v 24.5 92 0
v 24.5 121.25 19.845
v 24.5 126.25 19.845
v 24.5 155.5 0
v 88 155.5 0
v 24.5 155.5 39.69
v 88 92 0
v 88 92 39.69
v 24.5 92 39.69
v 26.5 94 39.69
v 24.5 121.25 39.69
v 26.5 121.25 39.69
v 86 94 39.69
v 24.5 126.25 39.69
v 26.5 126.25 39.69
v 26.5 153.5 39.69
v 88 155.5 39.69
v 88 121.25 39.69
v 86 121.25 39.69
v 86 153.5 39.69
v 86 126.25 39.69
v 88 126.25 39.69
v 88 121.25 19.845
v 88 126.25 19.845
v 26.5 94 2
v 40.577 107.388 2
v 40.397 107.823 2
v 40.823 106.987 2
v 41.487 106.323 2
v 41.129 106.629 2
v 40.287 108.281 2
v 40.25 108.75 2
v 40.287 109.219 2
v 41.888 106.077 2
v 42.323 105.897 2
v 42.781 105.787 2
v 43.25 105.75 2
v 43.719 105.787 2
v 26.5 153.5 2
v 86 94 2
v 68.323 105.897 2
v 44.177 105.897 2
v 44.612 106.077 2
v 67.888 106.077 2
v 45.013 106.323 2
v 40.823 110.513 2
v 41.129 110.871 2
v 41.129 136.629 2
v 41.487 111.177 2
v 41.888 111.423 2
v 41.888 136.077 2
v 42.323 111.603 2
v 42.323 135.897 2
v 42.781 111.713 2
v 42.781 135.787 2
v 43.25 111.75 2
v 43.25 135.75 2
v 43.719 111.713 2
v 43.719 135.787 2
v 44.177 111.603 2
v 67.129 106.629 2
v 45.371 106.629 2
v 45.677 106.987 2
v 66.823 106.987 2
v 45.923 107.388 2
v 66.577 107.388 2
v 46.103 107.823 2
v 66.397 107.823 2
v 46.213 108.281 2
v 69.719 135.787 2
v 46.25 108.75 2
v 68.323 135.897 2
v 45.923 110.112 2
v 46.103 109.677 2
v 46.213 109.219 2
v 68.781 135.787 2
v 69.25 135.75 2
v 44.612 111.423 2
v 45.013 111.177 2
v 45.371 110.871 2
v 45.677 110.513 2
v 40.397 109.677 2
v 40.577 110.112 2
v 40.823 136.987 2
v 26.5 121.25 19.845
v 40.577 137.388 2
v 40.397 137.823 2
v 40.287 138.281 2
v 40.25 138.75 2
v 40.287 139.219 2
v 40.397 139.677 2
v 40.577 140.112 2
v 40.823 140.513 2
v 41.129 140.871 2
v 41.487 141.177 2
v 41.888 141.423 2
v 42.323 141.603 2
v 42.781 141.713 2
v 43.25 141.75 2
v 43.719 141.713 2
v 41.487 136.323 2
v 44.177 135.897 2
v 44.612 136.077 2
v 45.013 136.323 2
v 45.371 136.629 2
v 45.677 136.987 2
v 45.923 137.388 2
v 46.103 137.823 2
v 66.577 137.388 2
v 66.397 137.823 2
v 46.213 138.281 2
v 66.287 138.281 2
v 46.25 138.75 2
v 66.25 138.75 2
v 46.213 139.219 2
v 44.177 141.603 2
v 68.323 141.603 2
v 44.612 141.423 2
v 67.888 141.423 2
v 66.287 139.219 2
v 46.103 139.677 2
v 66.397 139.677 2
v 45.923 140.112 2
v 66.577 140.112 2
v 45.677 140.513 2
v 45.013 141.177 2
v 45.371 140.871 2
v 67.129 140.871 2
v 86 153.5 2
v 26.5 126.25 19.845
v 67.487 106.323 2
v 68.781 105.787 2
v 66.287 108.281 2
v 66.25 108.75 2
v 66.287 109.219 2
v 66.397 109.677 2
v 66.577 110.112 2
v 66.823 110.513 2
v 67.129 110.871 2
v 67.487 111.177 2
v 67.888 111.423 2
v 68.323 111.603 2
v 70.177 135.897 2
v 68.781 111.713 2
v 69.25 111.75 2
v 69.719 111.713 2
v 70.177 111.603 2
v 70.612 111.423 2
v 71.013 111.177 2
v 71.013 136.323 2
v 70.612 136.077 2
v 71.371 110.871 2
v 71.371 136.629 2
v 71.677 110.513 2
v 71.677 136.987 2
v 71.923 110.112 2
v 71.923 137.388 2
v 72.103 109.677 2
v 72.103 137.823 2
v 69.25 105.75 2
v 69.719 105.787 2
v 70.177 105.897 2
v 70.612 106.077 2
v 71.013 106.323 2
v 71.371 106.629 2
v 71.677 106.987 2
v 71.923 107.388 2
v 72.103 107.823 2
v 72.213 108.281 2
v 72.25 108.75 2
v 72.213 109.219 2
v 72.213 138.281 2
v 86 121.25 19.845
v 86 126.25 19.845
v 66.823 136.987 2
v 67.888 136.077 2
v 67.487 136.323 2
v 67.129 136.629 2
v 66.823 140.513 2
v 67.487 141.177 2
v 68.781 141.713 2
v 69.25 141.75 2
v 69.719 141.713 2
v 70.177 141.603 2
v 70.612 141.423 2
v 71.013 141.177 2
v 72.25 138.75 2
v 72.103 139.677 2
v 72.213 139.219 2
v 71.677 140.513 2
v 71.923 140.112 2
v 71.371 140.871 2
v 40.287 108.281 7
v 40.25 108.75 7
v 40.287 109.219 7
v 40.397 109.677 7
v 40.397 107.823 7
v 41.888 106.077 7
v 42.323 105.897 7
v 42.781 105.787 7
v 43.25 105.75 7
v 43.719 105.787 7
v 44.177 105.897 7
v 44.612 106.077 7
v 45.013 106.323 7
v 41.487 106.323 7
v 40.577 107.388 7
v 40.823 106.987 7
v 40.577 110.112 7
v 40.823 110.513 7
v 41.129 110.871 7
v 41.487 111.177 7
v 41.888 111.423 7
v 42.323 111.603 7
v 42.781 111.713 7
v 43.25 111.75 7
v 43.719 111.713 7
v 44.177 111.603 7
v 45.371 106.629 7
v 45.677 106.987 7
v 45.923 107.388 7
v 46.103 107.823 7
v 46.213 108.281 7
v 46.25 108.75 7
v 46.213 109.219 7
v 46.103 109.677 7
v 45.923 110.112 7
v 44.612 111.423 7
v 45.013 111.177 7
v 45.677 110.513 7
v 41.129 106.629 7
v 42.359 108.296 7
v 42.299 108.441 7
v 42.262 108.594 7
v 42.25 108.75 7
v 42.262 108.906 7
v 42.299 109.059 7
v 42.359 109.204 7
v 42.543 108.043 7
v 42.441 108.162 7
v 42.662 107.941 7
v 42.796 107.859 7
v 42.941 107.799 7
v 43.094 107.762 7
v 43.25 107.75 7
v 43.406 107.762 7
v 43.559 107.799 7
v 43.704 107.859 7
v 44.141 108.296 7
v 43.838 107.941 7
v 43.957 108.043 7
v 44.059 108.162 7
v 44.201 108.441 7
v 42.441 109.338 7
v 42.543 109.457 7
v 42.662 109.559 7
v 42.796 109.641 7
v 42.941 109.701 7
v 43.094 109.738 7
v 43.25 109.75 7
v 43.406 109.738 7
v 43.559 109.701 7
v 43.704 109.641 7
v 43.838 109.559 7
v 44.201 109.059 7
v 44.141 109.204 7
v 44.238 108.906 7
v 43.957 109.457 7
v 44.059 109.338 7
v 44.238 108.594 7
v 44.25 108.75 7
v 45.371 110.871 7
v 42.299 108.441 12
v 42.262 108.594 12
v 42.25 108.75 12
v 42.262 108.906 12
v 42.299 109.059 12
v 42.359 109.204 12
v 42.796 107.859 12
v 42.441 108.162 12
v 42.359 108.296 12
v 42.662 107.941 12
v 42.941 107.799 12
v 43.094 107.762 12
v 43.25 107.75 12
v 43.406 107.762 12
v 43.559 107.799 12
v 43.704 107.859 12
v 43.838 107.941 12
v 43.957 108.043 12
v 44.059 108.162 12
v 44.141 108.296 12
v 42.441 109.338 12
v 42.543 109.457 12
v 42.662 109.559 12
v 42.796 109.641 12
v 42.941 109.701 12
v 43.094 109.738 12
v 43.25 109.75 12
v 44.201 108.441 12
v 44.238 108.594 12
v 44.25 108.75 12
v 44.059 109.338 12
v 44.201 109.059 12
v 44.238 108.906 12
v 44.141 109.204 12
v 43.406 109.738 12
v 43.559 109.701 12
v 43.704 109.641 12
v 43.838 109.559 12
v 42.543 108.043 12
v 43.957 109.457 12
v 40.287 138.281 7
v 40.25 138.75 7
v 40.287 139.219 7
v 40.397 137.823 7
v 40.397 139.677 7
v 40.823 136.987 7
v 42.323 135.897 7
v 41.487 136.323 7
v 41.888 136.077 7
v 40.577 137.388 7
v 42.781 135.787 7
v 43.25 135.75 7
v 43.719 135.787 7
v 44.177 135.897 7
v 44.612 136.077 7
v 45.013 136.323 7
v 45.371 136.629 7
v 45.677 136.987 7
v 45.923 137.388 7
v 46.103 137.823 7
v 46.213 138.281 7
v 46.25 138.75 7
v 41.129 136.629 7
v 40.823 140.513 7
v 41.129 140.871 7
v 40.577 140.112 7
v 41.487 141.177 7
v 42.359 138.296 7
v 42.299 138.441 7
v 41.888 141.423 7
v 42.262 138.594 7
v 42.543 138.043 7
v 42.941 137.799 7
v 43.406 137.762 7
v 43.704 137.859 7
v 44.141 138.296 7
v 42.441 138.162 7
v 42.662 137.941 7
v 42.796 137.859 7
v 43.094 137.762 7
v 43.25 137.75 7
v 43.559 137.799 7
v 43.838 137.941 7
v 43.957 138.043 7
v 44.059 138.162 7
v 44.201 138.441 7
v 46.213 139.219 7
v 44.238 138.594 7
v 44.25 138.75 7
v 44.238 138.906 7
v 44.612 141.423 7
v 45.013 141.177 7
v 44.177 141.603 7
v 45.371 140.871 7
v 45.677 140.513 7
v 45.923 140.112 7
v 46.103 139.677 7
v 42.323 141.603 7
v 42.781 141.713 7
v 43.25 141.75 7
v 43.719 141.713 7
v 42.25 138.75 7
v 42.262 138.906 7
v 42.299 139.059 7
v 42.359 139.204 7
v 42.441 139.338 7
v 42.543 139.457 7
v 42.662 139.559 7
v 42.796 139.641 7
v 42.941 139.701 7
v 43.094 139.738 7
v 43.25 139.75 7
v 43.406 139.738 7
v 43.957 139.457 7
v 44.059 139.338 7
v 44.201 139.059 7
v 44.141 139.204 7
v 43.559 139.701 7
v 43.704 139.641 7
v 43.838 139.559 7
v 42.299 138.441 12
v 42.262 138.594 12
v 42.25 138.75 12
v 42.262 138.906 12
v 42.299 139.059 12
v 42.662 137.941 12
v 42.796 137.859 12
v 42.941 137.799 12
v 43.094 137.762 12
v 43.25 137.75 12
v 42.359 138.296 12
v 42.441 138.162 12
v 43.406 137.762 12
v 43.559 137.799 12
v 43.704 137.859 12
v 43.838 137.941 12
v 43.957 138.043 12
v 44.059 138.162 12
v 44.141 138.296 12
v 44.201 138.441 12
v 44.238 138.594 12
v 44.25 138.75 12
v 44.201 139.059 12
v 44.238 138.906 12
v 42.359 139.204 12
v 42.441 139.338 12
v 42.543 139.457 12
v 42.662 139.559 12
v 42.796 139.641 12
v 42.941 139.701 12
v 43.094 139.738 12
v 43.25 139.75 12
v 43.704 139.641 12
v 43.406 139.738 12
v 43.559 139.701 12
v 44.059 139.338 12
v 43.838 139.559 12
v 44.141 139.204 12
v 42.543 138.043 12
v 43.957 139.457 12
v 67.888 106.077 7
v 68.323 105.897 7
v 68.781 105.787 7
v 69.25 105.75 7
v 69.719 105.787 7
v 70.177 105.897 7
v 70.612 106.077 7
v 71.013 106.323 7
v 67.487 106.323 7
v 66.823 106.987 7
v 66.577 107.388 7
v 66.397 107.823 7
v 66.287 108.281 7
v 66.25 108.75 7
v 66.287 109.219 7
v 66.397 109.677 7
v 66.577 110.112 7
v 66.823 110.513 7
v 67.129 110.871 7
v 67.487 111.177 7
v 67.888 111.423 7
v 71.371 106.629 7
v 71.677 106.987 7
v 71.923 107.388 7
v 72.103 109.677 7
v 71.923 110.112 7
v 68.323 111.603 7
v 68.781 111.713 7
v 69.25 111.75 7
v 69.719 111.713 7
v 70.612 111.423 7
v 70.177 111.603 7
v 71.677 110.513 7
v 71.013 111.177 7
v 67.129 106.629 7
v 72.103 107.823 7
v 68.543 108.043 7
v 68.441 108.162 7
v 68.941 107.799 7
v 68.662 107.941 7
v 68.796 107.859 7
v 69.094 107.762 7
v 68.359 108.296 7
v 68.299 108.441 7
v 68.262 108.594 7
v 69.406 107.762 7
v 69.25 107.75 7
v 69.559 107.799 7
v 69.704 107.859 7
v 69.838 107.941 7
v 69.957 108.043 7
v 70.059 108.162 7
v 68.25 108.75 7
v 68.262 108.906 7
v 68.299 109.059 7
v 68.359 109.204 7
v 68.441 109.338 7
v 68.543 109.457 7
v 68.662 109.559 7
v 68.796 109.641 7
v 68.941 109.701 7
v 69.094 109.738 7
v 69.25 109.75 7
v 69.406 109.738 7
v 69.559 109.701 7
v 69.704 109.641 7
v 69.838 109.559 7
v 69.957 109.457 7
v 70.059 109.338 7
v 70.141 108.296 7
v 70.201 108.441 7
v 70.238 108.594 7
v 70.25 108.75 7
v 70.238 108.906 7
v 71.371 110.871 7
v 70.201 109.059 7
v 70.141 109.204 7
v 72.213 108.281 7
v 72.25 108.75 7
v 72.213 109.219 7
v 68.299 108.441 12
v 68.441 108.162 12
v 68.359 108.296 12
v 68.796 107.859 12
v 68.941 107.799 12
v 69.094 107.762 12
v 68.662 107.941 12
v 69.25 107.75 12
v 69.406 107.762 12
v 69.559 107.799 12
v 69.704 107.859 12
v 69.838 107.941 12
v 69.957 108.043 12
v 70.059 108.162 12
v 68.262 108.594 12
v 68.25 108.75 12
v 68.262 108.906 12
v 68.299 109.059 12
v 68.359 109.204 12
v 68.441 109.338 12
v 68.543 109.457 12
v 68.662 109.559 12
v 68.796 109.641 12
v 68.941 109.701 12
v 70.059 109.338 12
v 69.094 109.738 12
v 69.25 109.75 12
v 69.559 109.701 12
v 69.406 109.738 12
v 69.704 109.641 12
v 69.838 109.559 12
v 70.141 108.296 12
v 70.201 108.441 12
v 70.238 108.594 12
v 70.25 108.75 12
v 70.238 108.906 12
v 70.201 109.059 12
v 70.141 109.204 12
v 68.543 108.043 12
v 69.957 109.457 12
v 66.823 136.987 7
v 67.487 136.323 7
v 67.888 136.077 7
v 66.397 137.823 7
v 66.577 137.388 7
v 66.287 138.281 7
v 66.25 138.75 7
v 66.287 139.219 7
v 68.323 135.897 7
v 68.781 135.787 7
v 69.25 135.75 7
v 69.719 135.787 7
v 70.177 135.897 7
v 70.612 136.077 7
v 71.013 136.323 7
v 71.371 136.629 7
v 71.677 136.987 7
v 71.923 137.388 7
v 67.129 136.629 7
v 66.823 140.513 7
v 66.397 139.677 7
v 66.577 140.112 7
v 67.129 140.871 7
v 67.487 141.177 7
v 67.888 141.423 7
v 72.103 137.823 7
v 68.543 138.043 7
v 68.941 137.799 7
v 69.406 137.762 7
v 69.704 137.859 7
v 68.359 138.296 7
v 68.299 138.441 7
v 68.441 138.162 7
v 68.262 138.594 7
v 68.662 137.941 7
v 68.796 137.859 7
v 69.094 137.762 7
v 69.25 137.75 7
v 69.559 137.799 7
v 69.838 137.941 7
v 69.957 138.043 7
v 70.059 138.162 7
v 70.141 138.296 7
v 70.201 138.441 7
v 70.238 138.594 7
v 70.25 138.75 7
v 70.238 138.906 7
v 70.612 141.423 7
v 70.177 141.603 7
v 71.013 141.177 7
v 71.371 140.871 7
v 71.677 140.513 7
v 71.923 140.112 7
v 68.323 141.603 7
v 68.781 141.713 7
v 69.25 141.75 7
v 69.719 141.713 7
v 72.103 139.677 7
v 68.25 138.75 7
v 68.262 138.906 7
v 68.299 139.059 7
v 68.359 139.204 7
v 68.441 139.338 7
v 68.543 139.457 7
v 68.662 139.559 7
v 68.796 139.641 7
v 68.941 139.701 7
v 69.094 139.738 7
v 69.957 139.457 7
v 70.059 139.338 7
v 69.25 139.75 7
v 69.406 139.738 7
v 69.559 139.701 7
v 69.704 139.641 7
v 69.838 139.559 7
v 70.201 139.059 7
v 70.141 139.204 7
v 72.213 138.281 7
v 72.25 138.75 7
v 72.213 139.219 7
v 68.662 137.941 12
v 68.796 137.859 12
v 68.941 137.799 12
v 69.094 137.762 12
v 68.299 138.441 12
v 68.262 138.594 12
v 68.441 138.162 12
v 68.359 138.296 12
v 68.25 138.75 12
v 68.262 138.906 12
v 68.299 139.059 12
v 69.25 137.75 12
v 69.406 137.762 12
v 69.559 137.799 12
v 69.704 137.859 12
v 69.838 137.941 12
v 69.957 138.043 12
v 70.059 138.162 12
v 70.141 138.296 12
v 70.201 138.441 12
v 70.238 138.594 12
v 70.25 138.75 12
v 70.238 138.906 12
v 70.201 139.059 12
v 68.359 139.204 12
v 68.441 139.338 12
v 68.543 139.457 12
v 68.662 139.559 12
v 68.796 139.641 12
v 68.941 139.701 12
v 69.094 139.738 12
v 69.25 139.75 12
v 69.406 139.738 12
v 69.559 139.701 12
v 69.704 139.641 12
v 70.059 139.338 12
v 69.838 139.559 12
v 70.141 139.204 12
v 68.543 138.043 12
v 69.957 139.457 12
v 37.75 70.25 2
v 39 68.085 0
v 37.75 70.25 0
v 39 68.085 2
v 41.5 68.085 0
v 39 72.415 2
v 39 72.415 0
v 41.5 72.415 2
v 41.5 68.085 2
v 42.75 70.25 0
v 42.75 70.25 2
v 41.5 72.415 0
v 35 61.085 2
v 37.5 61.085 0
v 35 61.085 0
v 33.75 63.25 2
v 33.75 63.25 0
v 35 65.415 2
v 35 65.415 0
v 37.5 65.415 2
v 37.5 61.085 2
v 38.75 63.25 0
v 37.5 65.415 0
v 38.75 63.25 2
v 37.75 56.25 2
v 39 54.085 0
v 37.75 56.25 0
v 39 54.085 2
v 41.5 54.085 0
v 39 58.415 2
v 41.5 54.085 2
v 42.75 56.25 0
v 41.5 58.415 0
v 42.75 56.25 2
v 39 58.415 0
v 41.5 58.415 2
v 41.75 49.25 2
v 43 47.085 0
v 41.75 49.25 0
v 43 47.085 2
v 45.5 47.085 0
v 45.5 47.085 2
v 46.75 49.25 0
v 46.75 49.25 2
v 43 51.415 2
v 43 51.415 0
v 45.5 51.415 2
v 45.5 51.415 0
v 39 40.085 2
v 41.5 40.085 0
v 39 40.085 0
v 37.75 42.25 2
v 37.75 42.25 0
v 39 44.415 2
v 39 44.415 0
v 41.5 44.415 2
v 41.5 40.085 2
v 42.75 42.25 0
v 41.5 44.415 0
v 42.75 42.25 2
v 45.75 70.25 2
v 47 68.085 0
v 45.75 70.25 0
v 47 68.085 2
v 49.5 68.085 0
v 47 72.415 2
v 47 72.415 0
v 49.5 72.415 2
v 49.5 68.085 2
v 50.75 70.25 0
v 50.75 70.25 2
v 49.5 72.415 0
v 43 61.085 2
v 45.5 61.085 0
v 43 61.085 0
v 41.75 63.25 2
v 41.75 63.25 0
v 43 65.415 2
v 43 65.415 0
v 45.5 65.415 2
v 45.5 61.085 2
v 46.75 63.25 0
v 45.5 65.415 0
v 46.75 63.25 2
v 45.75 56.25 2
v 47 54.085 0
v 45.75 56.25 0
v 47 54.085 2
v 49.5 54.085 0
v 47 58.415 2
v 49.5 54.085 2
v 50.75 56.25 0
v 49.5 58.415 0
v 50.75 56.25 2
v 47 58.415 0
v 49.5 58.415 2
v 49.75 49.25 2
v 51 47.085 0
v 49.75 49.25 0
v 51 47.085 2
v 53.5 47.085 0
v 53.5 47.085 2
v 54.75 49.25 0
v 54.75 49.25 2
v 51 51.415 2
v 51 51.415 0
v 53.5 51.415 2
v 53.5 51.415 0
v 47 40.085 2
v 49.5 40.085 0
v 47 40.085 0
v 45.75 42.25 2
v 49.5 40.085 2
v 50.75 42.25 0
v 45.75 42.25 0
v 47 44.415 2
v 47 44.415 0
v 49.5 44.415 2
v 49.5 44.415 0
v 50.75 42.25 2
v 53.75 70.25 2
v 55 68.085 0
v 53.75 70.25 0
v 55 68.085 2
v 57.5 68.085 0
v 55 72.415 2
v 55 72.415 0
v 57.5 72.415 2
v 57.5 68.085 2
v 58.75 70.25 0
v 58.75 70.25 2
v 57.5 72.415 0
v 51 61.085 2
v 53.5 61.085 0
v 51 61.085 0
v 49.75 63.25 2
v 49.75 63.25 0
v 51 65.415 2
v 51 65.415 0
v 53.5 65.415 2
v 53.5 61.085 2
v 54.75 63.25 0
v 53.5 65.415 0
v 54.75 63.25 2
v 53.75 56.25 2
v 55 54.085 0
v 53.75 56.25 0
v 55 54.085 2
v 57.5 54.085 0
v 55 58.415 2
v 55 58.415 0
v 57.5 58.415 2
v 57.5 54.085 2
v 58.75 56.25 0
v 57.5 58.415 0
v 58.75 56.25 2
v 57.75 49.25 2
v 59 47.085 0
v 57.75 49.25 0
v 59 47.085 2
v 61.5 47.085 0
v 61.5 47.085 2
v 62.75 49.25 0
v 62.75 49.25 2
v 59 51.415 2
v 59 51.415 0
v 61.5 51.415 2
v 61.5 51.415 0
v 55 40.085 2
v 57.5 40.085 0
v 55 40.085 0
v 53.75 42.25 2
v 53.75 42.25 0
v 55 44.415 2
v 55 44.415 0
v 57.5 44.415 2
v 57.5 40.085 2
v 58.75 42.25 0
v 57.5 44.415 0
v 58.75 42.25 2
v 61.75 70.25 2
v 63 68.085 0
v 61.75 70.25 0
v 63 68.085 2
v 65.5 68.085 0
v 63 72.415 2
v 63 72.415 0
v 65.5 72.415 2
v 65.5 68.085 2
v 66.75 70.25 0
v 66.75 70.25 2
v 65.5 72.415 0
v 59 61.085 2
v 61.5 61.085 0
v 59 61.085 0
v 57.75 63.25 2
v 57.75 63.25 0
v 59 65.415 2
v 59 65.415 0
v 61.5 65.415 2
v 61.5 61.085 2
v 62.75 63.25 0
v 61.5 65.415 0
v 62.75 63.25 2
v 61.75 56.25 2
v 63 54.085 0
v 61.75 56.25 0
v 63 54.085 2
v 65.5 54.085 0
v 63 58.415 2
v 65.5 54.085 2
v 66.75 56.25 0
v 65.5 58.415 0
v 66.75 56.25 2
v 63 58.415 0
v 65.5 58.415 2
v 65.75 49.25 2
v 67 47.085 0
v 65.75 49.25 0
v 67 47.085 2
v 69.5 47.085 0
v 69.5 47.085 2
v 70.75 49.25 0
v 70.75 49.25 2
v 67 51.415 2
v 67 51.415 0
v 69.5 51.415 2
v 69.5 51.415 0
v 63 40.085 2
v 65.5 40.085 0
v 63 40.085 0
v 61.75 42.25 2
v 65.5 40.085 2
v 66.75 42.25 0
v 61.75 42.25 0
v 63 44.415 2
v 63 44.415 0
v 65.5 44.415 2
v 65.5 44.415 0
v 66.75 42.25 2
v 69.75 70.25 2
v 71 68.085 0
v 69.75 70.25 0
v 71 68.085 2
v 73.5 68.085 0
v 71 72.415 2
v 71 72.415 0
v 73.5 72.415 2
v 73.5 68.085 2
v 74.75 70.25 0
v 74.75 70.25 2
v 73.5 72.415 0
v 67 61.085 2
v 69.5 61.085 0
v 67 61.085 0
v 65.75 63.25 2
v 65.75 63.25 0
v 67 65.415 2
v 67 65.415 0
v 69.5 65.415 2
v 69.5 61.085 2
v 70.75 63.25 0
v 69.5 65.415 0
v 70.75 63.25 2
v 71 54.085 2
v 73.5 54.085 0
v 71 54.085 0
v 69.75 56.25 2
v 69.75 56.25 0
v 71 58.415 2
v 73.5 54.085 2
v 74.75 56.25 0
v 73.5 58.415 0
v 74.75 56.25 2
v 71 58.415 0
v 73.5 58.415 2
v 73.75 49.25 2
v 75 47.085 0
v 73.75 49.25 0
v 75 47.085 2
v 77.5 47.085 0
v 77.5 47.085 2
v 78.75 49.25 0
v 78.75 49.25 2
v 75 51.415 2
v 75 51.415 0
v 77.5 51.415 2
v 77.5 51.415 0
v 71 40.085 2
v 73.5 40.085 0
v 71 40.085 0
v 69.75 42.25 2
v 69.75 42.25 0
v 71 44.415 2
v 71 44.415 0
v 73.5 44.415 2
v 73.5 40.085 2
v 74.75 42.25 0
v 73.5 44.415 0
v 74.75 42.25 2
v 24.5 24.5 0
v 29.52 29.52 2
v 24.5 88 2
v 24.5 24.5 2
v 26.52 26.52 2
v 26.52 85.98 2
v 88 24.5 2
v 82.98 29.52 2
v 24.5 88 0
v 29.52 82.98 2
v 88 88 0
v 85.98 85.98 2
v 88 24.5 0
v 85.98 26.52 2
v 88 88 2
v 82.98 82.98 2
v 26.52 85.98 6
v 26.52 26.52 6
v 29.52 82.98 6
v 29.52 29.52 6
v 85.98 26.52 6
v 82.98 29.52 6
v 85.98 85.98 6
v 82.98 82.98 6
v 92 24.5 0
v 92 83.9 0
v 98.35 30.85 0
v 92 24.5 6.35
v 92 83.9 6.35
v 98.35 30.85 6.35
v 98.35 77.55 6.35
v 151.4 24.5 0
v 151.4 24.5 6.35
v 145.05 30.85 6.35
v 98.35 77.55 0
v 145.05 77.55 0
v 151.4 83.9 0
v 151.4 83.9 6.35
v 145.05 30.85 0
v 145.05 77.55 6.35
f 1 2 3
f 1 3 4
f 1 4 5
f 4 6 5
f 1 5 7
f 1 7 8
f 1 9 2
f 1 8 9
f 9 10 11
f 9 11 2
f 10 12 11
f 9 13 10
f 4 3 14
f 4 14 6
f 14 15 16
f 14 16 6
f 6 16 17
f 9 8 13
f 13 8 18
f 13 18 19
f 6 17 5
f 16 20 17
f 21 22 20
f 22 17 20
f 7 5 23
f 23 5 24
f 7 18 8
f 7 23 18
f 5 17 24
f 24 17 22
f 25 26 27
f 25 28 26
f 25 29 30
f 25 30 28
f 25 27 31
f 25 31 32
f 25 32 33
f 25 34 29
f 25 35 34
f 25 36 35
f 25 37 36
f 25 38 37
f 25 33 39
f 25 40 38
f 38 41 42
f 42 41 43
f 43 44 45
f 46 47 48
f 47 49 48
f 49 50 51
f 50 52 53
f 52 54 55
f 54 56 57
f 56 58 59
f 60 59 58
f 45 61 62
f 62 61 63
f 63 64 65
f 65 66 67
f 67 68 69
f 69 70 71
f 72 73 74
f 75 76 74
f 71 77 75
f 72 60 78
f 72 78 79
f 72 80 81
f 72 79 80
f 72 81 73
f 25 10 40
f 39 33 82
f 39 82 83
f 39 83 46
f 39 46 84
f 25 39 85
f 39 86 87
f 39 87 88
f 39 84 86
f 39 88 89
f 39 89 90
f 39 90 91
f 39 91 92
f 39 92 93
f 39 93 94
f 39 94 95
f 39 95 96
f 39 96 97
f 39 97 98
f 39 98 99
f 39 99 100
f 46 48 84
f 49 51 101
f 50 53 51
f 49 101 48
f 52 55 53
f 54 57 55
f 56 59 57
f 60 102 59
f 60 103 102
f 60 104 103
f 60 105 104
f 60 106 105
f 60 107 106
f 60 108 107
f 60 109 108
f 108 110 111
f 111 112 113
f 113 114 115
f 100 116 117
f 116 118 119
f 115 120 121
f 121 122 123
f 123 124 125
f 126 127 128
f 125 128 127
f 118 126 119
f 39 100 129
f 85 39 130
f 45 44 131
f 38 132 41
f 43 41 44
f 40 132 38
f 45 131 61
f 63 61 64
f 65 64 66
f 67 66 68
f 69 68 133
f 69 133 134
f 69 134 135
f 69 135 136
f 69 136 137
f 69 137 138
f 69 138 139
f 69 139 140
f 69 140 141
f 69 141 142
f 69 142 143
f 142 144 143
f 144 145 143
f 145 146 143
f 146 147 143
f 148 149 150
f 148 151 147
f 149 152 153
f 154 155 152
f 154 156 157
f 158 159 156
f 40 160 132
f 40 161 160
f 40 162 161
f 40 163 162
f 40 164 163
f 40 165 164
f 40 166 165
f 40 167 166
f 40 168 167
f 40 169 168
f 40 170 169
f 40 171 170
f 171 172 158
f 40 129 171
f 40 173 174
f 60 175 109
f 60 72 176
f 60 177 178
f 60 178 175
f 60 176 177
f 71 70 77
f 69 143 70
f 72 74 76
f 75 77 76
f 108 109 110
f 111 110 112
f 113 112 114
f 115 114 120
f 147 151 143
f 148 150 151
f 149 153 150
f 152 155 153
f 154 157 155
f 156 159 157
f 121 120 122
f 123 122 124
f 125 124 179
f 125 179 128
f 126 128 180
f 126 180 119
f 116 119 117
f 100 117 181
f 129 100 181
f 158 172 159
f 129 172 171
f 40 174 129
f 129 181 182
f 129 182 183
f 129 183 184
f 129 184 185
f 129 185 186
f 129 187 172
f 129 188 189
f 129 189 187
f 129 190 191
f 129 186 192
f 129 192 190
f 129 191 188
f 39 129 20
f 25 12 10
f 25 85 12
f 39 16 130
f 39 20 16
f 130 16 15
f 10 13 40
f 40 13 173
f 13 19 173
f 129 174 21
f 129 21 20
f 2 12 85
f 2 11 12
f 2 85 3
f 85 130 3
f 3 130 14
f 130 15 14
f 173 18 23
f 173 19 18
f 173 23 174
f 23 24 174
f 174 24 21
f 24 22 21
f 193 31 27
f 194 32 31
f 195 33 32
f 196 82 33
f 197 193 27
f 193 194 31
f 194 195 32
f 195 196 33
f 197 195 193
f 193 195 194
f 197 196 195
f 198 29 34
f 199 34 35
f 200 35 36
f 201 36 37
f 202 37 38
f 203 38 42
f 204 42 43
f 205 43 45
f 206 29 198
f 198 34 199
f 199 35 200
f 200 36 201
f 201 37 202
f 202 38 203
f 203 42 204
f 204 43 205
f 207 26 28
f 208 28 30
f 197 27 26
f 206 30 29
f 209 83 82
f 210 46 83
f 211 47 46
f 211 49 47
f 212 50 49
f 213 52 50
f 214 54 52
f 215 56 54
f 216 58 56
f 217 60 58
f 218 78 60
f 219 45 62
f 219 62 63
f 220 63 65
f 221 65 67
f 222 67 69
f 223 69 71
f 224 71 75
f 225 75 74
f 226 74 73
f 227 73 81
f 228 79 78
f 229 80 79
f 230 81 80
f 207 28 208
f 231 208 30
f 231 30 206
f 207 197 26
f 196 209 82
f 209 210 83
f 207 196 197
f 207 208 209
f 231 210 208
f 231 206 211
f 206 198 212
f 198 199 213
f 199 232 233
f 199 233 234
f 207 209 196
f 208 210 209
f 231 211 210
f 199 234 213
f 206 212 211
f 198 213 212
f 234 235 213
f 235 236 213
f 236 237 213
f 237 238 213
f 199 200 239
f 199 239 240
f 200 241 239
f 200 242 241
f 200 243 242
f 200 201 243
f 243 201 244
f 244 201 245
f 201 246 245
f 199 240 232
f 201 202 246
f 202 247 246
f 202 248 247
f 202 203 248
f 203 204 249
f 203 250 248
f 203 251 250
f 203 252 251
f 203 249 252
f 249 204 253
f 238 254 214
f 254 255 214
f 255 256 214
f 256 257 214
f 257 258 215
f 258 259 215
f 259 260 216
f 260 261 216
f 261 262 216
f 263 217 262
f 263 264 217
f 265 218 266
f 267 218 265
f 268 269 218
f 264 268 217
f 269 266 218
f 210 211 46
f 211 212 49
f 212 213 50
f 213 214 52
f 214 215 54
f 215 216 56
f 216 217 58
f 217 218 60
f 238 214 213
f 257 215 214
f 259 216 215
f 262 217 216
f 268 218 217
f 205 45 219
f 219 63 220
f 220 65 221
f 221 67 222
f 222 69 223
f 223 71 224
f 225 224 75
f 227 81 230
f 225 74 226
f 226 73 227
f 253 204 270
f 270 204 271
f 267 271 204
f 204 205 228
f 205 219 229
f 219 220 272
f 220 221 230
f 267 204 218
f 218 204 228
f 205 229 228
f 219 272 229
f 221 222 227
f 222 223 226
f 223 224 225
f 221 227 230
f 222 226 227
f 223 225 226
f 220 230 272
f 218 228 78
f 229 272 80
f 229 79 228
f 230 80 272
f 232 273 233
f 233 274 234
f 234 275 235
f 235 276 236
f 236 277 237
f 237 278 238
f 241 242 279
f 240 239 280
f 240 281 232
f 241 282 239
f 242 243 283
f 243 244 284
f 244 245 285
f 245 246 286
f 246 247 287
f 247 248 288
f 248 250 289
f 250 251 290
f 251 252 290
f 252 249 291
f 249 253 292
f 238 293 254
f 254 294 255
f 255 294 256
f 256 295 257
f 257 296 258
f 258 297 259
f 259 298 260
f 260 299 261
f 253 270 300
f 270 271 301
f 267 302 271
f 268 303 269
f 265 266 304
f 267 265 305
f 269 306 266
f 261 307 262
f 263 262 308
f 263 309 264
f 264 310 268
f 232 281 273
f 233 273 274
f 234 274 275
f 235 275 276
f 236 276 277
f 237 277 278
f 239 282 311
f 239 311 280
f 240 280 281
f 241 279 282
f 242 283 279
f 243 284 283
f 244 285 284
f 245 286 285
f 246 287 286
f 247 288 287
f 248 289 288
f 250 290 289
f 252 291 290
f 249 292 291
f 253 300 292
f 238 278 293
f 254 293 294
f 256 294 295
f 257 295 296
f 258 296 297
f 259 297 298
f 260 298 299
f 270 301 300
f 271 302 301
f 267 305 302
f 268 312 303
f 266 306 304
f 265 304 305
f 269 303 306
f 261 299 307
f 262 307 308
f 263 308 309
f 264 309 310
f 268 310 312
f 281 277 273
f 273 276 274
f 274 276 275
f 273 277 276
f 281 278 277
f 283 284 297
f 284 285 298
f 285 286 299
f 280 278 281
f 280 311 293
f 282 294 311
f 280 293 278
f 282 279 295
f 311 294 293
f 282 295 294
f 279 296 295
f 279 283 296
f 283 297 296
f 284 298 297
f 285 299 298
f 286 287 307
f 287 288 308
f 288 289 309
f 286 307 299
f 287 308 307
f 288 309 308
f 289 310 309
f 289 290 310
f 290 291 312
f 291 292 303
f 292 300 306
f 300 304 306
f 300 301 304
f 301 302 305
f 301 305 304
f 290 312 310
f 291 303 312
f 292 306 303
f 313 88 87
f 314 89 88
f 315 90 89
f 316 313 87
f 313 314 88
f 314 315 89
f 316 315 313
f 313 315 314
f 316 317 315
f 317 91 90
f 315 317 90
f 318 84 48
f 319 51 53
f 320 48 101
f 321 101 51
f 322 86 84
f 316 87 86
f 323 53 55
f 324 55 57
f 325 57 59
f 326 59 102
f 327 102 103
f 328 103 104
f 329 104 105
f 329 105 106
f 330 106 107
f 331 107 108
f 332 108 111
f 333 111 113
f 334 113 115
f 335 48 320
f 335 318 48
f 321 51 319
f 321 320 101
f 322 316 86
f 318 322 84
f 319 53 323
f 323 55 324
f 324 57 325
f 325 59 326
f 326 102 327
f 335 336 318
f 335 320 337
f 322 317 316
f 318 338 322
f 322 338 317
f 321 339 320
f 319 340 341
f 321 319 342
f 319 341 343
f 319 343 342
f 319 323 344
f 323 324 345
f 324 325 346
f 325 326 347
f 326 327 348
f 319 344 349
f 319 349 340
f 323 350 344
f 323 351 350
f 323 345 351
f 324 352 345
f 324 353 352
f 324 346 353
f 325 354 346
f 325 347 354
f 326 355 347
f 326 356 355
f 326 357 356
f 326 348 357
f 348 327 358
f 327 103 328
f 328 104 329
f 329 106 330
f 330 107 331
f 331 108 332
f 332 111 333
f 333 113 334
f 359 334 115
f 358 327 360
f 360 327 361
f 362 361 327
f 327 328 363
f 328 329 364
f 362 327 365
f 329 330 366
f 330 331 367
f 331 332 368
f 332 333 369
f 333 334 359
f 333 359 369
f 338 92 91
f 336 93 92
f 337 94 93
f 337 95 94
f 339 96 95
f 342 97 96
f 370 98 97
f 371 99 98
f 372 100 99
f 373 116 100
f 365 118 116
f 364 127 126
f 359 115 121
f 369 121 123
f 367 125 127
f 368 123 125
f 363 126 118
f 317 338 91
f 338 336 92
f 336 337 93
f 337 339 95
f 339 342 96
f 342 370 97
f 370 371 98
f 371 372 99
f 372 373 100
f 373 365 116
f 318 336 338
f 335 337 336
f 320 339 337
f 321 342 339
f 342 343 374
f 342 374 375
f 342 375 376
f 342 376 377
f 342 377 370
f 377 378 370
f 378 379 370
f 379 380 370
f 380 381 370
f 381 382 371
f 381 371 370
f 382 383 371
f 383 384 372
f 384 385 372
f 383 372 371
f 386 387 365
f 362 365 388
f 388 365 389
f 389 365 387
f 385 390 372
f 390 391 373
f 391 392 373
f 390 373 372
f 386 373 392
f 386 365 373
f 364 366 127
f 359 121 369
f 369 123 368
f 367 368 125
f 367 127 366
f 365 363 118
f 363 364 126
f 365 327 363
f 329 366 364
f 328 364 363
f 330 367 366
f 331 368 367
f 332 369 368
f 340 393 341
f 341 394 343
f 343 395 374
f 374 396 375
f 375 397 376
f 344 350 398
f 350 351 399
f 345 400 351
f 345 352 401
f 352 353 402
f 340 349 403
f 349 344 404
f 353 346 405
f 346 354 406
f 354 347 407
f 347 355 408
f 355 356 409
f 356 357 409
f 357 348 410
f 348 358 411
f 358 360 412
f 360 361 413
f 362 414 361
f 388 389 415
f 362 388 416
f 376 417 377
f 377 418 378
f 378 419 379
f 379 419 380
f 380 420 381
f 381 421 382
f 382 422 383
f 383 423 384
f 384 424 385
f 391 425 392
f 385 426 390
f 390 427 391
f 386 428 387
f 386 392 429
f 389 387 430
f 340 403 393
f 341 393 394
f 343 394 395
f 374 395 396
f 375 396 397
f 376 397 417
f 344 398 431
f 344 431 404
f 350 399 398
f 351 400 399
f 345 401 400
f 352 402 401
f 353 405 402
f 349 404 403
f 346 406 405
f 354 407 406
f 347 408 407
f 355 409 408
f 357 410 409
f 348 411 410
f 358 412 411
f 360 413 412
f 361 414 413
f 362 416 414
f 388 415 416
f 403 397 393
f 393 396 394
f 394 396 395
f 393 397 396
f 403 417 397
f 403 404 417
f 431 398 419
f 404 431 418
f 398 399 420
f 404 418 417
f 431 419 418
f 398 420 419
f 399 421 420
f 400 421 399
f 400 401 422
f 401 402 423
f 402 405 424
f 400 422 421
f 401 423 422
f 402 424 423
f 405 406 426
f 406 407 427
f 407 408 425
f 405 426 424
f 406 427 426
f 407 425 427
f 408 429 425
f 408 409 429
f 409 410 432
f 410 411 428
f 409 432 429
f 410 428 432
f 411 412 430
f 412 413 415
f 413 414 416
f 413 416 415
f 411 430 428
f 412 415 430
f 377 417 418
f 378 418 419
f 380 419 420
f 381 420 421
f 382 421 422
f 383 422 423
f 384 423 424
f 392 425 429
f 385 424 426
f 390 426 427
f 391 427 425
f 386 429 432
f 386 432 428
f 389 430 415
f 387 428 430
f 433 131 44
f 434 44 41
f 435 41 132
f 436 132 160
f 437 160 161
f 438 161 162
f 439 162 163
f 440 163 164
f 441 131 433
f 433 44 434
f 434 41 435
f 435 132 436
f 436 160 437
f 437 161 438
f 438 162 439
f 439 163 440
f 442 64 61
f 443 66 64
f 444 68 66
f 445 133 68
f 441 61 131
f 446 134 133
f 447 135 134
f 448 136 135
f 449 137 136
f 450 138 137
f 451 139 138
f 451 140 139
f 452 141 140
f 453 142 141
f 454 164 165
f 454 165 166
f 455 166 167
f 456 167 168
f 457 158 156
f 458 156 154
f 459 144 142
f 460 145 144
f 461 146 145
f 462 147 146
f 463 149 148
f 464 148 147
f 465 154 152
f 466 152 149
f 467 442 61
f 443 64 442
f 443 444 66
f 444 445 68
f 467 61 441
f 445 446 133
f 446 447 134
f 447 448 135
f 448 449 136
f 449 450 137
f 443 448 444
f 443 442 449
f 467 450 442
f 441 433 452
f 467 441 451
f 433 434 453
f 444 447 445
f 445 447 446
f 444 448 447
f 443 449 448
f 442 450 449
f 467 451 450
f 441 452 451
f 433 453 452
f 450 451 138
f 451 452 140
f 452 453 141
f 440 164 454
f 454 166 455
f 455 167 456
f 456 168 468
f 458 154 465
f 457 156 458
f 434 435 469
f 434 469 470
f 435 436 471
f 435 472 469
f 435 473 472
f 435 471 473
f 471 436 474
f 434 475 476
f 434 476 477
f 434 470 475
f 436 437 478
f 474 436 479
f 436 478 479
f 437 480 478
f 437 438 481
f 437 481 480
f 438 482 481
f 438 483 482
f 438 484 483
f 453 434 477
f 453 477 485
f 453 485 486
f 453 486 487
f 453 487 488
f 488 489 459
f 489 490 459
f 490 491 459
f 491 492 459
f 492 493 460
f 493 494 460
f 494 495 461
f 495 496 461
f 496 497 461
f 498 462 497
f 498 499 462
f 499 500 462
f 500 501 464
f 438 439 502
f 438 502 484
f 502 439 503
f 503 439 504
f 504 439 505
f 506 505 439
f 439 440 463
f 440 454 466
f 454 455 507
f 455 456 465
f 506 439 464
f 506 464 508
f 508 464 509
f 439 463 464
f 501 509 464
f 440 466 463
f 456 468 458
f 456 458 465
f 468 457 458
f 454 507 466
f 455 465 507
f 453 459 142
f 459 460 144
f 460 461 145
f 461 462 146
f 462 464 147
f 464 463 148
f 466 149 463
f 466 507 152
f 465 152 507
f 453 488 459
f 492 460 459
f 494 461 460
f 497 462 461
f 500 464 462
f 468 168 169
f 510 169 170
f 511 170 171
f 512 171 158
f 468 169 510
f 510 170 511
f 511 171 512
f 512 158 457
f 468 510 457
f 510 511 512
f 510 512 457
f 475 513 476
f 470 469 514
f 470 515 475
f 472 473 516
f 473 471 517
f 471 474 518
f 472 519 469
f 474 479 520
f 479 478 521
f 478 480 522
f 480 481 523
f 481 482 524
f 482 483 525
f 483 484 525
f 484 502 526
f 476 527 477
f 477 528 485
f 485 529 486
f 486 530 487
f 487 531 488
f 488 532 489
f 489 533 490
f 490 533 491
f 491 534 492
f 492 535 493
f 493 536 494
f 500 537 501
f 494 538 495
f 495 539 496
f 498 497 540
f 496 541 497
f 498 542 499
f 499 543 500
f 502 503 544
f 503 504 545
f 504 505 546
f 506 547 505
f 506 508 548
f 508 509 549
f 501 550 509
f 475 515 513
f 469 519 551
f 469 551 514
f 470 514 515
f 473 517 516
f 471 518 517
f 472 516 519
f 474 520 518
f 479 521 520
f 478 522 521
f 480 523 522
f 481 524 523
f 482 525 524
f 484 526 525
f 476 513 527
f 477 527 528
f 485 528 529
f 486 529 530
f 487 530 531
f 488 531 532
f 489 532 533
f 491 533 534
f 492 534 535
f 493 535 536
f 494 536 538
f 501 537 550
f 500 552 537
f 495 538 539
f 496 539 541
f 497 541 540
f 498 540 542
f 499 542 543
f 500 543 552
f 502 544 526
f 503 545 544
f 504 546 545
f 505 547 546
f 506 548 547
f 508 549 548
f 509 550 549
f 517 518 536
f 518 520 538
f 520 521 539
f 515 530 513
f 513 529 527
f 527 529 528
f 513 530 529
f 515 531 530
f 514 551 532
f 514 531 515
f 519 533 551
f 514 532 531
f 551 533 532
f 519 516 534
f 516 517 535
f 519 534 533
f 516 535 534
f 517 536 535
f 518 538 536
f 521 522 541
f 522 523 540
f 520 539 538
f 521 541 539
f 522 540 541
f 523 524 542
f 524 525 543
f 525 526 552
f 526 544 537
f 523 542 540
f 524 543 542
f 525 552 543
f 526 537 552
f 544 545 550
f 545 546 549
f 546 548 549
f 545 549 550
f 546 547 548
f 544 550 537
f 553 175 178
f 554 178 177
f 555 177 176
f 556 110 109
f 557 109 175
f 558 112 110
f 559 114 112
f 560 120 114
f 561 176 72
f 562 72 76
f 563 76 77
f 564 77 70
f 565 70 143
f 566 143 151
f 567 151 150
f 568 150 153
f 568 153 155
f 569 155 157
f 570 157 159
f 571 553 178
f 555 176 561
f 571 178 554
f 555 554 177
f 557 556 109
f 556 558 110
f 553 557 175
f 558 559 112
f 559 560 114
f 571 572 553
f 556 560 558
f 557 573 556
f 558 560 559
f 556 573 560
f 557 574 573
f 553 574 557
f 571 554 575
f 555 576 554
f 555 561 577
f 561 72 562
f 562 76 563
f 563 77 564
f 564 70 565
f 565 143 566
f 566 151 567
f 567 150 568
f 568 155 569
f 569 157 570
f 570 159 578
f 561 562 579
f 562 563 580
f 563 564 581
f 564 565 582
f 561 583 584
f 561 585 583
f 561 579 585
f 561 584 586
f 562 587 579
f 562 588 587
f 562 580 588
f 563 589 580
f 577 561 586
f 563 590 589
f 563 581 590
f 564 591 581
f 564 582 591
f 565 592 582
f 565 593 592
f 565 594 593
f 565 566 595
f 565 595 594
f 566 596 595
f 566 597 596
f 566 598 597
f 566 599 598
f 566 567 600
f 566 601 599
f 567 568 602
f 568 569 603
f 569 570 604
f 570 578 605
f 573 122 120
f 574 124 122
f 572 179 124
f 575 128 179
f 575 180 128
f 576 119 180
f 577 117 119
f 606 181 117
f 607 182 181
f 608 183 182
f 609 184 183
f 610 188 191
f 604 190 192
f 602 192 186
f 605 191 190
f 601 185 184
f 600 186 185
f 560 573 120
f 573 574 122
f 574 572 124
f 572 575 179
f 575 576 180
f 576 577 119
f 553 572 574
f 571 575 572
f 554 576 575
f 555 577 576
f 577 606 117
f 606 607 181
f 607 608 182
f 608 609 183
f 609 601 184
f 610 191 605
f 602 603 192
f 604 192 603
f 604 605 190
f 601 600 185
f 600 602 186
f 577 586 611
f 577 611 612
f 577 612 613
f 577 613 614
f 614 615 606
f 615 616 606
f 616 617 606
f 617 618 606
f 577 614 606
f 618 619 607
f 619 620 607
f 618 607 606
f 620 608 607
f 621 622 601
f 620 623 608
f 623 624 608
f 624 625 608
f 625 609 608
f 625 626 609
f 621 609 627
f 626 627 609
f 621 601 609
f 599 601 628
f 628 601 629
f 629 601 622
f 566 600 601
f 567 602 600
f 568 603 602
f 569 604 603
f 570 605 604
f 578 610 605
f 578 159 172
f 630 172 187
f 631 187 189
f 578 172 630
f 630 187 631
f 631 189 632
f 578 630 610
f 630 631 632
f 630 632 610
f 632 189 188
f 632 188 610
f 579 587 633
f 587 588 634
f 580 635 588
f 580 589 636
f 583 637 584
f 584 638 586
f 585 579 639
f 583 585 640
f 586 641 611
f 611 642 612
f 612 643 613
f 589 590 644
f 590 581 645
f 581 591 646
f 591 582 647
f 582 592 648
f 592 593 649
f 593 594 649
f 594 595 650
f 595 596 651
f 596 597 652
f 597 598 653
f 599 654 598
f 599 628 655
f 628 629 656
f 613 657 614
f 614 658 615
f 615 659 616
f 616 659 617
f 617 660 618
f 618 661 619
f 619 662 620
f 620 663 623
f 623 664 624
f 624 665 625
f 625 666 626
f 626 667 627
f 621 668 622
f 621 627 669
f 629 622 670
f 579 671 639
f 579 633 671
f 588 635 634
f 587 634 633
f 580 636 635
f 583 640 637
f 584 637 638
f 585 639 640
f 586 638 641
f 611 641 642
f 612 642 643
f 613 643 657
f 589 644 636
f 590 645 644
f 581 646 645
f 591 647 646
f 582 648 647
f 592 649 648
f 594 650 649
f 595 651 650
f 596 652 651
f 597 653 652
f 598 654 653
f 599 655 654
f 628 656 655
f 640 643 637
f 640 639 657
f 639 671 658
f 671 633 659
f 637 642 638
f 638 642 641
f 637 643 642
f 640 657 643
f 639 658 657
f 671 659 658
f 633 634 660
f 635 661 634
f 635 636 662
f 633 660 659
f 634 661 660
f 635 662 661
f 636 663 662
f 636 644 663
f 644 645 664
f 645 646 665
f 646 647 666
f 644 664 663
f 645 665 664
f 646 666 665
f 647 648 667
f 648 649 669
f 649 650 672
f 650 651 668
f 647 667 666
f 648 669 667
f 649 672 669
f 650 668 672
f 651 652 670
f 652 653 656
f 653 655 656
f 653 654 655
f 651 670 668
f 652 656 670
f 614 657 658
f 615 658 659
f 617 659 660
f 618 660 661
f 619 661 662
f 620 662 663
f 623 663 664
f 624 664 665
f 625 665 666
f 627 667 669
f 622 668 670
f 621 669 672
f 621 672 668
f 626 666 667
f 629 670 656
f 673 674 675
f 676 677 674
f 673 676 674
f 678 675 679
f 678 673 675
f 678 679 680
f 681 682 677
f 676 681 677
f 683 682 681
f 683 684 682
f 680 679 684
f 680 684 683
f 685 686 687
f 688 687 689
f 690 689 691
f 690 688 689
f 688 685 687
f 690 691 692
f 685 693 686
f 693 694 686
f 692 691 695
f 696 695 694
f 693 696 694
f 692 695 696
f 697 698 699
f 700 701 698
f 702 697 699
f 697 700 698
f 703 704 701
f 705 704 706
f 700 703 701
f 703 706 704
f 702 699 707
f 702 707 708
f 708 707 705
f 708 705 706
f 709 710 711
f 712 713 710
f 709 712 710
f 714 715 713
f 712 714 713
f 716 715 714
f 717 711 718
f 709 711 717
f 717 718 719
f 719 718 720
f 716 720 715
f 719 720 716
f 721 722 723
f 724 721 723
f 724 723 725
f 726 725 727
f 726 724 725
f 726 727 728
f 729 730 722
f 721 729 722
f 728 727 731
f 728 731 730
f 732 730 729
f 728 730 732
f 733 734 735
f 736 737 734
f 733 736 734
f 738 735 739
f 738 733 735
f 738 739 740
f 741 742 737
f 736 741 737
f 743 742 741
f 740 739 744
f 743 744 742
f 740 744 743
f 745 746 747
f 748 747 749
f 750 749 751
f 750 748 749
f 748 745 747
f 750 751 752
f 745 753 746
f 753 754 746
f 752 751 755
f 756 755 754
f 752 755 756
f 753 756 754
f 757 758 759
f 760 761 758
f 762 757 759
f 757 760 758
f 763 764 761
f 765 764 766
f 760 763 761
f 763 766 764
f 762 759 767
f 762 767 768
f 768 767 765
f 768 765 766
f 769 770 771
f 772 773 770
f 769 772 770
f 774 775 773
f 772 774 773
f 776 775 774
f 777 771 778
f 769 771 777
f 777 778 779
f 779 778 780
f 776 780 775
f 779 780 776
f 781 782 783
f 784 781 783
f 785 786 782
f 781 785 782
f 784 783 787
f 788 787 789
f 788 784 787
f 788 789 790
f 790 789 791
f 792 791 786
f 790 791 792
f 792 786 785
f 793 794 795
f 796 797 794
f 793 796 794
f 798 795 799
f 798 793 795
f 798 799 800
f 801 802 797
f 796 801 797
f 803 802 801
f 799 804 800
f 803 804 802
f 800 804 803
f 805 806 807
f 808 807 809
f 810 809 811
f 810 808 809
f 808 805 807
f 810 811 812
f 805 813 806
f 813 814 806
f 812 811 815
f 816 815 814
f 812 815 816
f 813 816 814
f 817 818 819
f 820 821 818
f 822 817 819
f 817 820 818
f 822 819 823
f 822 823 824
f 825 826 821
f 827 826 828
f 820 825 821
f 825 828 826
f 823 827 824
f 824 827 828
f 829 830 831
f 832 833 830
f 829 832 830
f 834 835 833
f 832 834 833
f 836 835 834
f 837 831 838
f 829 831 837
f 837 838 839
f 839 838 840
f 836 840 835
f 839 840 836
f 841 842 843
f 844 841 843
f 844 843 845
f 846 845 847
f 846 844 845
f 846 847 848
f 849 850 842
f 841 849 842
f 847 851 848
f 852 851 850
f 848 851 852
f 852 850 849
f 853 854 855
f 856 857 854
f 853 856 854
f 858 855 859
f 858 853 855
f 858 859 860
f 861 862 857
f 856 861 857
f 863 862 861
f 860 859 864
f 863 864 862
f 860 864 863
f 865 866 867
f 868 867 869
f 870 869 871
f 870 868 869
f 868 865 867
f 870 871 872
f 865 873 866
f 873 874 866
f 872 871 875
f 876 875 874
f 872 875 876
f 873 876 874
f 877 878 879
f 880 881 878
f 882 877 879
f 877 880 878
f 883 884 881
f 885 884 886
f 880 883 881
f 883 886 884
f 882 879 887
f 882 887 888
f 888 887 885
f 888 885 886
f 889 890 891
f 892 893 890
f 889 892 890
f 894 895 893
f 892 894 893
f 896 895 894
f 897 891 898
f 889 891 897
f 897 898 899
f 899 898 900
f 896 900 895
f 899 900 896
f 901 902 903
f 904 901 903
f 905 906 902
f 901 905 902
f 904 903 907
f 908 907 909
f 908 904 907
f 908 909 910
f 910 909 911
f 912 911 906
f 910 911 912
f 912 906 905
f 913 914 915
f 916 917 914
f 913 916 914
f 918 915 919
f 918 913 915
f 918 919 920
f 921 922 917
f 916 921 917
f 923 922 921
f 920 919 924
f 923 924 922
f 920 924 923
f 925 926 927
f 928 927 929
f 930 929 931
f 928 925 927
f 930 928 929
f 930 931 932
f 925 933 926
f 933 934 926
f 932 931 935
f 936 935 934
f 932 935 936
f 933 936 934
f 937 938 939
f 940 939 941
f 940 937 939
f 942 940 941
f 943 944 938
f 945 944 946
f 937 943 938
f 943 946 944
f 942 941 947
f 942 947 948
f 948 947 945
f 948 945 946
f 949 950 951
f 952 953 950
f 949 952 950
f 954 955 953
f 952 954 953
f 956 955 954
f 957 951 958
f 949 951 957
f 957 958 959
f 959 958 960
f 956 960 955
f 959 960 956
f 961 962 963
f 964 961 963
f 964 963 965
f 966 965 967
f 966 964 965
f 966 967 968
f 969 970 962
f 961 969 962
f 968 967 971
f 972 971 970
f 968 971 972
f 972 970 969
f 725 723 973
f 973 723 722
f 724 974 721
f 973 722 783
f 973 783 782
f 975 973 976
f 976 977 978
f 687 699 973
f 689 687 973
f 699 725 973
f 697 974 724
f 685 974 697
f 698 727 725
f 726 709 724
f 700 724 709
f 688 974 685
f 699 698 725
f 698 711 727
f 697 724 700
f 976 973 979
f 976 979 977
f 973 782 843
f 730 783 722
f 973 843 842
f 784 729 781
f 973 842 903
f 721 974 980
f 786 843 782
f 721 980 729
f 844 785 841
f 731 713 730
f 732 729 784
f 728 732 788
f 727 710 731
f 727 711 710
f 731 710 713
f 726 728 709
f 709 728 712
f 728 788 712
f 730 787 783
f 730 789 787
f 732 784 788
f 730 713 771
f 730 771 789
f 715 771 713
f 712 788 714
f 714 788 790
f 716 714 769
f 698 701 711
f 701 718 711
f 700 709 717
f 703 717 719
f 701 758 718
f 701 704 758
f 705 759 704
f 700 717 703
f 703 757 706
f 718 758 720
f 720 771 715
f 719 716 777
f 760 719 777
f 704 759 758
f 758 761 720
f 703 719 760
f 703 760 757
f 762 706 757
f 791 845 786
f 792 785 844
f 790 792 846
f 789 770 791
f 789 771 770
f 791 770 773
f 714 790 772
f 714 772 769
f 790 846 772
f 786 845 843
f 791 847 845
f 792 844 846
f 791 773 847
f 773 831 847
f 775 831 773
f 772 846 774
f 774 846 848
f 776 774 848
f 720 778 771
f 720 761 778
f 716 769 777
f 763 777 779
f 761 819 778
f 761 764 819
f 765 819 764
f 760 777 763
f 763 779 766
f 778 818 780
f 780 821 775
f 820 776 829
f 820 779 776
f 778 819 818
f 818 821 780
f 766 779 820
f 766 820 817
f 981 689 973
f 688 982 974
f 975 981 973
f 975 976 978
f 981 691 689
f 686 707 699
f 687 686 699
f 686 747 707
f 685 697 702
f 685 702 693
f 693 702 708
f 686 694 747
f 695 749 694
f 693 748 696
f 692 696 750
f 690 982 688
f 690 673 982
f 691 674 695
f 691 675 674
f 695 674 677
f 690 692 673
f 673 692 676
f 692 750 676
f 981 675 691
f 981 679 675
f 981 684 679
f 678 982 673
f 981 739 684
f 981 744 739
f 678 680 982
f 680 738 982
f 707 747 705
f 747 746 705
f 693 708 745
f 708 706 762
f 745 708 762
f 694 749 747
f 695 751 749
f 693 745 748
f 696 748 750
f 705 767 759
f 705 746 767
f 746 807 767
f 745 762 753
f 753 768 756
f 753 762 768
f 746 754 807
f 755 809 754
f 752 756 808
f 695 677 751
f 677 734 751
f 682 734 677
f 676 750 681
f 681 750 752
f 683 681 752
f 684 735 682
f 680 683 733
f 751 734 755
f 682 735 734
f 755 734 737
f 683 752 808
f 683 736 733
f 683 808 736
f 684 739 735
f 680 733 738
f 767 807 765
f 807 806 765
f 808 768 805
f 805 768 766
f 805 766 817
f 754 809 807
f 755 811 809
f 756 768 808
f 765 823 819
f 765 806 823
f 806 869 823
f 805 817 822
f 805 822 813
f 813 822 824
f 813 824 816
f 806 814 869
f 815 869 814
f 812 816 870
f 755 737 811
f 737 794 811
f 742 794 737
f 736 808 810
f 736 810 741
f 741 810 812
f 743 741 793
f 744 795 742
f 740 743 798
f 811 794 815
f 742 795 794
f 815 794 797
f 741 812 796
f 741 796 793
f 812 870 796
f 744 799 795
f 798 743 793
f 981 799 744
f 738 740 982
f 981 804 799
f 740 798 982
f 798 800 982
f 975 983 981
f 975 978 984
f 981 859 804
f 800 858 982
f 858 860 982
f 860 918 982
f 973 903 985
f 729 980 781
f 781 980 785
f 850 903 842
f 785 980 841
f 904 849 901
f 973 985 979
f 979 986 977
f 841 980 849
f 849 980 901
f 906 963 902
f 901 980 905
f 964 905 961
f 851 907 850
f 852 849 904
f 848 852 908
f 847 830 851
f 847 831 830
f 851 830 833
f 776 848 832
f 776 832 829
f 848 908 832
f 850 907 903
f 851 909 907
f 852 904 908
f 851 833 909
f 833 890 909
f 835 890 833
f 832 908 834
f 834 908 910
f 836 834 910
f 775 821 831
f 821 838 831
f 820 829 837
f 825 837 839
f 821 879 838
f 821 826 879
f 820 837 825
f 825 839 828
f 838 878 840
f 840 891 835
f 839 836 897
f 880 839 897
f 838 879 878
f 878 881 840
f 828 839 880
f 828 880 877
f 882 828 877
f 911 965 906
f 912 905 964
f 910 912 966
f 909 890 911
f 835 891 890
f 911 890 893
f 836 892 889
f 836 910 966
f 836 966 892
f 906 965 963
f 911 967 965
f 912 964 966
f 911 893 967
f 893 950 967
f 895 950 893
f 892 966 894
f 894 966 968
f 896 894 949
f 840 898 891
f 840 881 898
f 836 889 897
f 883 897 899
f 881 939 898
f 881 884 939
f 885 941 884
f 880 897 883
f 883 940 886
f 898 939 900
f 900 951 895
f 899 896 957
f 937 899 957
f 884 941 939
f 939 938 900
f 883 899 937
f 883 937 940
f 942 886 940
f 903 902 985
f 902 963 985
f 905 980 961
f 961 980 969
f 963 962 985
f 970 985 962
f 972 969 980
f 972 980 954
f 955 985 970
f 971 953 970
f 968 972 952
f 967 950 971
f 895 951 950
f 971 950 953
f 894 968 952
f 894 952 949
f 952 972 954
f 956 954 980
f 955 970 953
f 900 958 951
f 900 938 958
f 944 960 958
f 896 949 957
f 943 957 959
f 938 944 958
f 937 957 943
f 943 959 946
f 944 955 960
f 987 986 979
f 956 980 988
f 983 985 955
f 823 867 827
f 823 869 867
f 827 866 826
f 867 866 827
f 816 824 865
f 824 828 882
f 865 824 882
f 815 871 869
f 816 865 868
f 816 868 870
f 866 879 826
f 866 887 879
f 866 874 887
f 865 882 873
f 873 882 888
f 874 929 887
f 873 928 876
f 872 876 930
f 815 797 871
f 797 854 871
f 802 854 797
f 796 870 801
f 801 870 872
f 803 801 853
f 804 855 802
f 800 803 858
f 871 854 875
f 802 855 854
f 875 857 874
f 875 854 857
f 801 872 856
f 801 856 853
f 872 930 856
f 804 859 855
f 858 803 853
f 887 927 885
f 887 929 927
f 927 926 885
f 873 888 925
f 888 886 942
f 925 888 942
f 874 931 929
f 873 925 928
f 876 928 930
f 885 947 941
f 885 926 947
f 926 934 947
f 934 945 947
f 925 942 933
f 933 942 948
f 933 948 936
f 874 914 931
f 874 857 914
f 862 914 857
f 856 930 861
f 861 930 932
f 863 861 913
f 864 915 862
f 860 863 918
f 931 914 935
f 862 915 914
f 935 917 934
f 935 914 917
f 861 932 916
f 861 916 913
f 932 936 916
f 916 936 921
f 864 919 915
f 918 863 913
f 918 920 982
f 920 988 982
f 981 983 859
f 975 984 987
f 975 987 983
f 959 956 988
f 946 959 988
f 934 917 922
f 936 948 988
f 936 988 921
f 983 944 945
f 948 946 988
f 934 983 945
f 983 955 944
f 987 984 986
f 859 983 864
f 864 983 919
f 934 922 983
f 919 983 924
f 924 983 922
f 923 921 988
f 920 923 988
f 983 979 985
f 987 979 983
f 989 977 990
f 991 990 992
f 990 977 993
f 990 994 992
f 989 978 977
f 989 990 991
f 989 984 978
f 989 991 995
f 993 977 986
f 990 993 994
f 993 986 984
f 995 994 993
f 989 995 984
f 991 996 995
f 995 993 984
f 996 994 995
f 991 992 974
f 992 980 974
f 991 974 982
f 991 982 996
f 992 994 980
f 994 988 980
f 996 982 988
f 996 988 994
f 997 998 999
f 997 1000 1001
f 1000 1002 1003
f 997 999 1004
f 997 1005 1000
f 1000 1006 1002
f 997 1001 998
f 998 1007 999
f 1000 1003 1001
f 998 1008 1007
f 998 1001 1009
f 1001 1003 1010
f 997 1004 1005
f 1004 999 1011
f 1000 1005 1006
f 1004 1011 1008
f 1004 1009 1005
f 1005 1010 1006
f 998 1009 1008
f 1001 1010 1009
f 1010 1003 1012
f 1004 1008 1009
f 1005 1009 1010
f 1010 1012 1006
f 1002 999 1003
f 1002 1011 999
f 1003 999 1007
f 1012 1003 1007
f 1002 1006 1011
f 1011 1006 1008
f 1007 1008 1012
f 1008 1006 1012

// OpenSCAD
// Custom Enclosure for ULN2003 Stepper Motor Driver Board
// Updated: Box height 1 9/16", pin standoffs, and a printable sliding wire retention ring.

$fn = 40; // Circle smoothness

// --- PARAMETERS ---
box_size = 63.5;       // 2.5 inches square
box_height = 39.69;    // 1 9/16 inches overall height
wall_thick = 2.0;      // Outer shell wall thickness

// Board Mounting Dimensions (Calculated from ruler photos: ~26mm x 30mm)
pcb_hole_w = 26.0;     // Center-to-center hole spacing (Width)
pcb_hole_l = 30.0;     // Center-to-center hole spacing (Length)

standoff_h = 5.0;      // Height of main support base
standoff_dia = 6.0;    // Diameter of standoff base pillars
pin_h = 5.0;           // UPDATED: Increased from 3.0 to 5.0 for a taller registration fit
pin_dia = 2.0;         // Diameter of alignment pin (fits standard PCB holes)

// Slits for wires (Halfway down opposite walls)
slit_w = 5.0;          // Width of wire drop slots
slit_depth = box_height / 2; 

// Wire Retention Ring Dimensions
ring_height = 6.35;    // 1/4 inch high
ring_width = 6.35;     // 1/4 inch wall thickness
ring_clearance = 0.05; // UPDATED: Tightened from 0.15 to 0.05 to ensure a tight slide fit inside the box

// --- BED CENTERING CALCULATIONS ---
bed_size = 180;        // Bambu Lab A1 Mini bed size (180x180mm)
part_gap = 4.0;        // Spacing gap between elements

// Explicitly defining the 2x2 grid bounding box dimensions
total_width = (box_size * 2) + part_gap; 
total_depth = (box_size * 2) + part_gap;

// Master offset vectors to center the 2x2 cluster perfectly on the build plate
center_x = (bed_size - total_width) / 2;
center_y = (bed_size - total_depth) / 2;


// --- PRINT BED ARRANGEMENT (FIXED OVERLAP & CENTERING) ---

translate([center_x, center_y, 0]) {

    // 1. Enclosure Lid (Front Left)
    // Fixed: Translating backward along Y by box_size compensates for the 180-degree flip pivot
    translate([0, box_size, wall_thick]) {
        rotate([180, 0, 0]) {
            enclosure_lid();
        }
    }

    // 2. Main Enclosure Base (Rear Left)
    translate([0, box_size + part_gap, 0]) {
        main_enclosure_base();
    }

    // 3. Sliding Wire Retention Ring (Front Right)
    translate([box_size + part_gap, 0, 0]) {
        wire_retention_ring();
    }
}


// --- MODULES ---

module main_enclosure_base() {
    difference() {
        // Outer Solid Box
        cube([box_size, box_size, box_height]);
        
        // Inner Hollow Space
        translate([wall_thick, wall_thick, wall_thick])
            cube([box_size - (wall_thick * 2), box_size - (wall_thick * 2), box_height]);
        
        // Wire Slit 1 (Left wall, centered)
        translate([-0.1, box_size / 2 - slit_w / 2, box_height - slit_depth])
            cube([wall_thick + 0.2, slit_w, slit_depth + 0.1]);
            
        // Wire Slit 2 (Right wall, centered)
        translate([box_size - wall_thick - 0.1, box_size / 2 - slit_w / 2, box_height - slit_depth])
            cube([wall_thick + 0.2, slit_w, slit_depth + 0.1]);
    }
    
    // Four Centered PCB Pin Standoffs
    translate([box_size / 2, box_size / 2, wall_thick]) {
        for (x = [-pcb_hole_w / 2, pcb_hole_w / 2]) {
            for (y = [-pcb_hole_l / 2, pcb_hole_l / 2]) {
                translate([x, y, 0]) {
                    // Standoff Support Base
                    cylinder(h = standoff_h, d = standoff_dia);
                    // Alignment Pin on top
                    translate([0, 0, standoff_h])
                        cylinder(h = pin_h, d = pin_dia);
                }
            }
        }
    }
}

module enclosure_lid() {
    lid_lip_height = 4.0; // Deeper friction path for a tight fit
    lid_clearance = 0.02; // UPDATED: Reduced from 0.1 to 0.02 for a tighter snap/friction fit
    lip_thick = 3.0;      // Thicker wall layers on the inner lip profile
    
    // Main Lid Flat Plate
    difference() {
        cube([box_size, box_size, wall_thick]);
        
        // Ventilation Array (Hexagonal patterns centered on the top)
        translate([box_size / 2, box_size / 2, -0.1]) {
            for (xi = [-2:2]) {
                for (yi = [-2:2]) {
                    translate([xi * 8 + (yi % 2 * 4), yi * 7, 0])
                        cylinder(h = wall_thick + 0.2, r = 2.5, $fn = 6);
                }
            }
        }
    }
    
    // Reinforced Inner Alignment Lip 
    difference() {
        translate([wall_thick + lid_clearance, wall_thick + lid_clearance, -lid_lip_height])
            cube([box_size - (wall_thick * 2) - (lid_clearance * 2), box_size - (wall_thick * 2) - (lid_clearance * 2), lid_lip_height]);
        
        // Inner clearance cutout leaving a strong, thick tracking lip perimeter
        translate([wall_thick + lid_clearance + lip_thick, wall_thick + lid_clearance + lip_thick, -lid_lip_height - 0.1])
            cube([box_size - (wall_thick * 2) - (lid_clearance * 2) - (lip_thick * 2), box_size - (wall_thick * 2) - (lid_clearance * 2) - (lip_thick * 2), lid_lip_height + 0.2]);
    }
}

module wire_retention_ring() {
    // Computes the size needed to slide perfectly into the box's inner footprint
    outer_ring_size = box_size - (wall_thick * 2) - (ring_clearance * 2);
    inner_ring_size = outer_ring_size - (ring_width * 2);
    
    difference() {
        // Outer ring solid boundary
        cube([outer_ring_size, outer_ring_size, ring_height]);
        
        // Center cutout to leave a 1/4" boundary profile
        translate([ring_width, ring_width, -0.1])
            cube([inner_ring_size, inner_ring_size, ring_height + 0.2]);
    }
}
